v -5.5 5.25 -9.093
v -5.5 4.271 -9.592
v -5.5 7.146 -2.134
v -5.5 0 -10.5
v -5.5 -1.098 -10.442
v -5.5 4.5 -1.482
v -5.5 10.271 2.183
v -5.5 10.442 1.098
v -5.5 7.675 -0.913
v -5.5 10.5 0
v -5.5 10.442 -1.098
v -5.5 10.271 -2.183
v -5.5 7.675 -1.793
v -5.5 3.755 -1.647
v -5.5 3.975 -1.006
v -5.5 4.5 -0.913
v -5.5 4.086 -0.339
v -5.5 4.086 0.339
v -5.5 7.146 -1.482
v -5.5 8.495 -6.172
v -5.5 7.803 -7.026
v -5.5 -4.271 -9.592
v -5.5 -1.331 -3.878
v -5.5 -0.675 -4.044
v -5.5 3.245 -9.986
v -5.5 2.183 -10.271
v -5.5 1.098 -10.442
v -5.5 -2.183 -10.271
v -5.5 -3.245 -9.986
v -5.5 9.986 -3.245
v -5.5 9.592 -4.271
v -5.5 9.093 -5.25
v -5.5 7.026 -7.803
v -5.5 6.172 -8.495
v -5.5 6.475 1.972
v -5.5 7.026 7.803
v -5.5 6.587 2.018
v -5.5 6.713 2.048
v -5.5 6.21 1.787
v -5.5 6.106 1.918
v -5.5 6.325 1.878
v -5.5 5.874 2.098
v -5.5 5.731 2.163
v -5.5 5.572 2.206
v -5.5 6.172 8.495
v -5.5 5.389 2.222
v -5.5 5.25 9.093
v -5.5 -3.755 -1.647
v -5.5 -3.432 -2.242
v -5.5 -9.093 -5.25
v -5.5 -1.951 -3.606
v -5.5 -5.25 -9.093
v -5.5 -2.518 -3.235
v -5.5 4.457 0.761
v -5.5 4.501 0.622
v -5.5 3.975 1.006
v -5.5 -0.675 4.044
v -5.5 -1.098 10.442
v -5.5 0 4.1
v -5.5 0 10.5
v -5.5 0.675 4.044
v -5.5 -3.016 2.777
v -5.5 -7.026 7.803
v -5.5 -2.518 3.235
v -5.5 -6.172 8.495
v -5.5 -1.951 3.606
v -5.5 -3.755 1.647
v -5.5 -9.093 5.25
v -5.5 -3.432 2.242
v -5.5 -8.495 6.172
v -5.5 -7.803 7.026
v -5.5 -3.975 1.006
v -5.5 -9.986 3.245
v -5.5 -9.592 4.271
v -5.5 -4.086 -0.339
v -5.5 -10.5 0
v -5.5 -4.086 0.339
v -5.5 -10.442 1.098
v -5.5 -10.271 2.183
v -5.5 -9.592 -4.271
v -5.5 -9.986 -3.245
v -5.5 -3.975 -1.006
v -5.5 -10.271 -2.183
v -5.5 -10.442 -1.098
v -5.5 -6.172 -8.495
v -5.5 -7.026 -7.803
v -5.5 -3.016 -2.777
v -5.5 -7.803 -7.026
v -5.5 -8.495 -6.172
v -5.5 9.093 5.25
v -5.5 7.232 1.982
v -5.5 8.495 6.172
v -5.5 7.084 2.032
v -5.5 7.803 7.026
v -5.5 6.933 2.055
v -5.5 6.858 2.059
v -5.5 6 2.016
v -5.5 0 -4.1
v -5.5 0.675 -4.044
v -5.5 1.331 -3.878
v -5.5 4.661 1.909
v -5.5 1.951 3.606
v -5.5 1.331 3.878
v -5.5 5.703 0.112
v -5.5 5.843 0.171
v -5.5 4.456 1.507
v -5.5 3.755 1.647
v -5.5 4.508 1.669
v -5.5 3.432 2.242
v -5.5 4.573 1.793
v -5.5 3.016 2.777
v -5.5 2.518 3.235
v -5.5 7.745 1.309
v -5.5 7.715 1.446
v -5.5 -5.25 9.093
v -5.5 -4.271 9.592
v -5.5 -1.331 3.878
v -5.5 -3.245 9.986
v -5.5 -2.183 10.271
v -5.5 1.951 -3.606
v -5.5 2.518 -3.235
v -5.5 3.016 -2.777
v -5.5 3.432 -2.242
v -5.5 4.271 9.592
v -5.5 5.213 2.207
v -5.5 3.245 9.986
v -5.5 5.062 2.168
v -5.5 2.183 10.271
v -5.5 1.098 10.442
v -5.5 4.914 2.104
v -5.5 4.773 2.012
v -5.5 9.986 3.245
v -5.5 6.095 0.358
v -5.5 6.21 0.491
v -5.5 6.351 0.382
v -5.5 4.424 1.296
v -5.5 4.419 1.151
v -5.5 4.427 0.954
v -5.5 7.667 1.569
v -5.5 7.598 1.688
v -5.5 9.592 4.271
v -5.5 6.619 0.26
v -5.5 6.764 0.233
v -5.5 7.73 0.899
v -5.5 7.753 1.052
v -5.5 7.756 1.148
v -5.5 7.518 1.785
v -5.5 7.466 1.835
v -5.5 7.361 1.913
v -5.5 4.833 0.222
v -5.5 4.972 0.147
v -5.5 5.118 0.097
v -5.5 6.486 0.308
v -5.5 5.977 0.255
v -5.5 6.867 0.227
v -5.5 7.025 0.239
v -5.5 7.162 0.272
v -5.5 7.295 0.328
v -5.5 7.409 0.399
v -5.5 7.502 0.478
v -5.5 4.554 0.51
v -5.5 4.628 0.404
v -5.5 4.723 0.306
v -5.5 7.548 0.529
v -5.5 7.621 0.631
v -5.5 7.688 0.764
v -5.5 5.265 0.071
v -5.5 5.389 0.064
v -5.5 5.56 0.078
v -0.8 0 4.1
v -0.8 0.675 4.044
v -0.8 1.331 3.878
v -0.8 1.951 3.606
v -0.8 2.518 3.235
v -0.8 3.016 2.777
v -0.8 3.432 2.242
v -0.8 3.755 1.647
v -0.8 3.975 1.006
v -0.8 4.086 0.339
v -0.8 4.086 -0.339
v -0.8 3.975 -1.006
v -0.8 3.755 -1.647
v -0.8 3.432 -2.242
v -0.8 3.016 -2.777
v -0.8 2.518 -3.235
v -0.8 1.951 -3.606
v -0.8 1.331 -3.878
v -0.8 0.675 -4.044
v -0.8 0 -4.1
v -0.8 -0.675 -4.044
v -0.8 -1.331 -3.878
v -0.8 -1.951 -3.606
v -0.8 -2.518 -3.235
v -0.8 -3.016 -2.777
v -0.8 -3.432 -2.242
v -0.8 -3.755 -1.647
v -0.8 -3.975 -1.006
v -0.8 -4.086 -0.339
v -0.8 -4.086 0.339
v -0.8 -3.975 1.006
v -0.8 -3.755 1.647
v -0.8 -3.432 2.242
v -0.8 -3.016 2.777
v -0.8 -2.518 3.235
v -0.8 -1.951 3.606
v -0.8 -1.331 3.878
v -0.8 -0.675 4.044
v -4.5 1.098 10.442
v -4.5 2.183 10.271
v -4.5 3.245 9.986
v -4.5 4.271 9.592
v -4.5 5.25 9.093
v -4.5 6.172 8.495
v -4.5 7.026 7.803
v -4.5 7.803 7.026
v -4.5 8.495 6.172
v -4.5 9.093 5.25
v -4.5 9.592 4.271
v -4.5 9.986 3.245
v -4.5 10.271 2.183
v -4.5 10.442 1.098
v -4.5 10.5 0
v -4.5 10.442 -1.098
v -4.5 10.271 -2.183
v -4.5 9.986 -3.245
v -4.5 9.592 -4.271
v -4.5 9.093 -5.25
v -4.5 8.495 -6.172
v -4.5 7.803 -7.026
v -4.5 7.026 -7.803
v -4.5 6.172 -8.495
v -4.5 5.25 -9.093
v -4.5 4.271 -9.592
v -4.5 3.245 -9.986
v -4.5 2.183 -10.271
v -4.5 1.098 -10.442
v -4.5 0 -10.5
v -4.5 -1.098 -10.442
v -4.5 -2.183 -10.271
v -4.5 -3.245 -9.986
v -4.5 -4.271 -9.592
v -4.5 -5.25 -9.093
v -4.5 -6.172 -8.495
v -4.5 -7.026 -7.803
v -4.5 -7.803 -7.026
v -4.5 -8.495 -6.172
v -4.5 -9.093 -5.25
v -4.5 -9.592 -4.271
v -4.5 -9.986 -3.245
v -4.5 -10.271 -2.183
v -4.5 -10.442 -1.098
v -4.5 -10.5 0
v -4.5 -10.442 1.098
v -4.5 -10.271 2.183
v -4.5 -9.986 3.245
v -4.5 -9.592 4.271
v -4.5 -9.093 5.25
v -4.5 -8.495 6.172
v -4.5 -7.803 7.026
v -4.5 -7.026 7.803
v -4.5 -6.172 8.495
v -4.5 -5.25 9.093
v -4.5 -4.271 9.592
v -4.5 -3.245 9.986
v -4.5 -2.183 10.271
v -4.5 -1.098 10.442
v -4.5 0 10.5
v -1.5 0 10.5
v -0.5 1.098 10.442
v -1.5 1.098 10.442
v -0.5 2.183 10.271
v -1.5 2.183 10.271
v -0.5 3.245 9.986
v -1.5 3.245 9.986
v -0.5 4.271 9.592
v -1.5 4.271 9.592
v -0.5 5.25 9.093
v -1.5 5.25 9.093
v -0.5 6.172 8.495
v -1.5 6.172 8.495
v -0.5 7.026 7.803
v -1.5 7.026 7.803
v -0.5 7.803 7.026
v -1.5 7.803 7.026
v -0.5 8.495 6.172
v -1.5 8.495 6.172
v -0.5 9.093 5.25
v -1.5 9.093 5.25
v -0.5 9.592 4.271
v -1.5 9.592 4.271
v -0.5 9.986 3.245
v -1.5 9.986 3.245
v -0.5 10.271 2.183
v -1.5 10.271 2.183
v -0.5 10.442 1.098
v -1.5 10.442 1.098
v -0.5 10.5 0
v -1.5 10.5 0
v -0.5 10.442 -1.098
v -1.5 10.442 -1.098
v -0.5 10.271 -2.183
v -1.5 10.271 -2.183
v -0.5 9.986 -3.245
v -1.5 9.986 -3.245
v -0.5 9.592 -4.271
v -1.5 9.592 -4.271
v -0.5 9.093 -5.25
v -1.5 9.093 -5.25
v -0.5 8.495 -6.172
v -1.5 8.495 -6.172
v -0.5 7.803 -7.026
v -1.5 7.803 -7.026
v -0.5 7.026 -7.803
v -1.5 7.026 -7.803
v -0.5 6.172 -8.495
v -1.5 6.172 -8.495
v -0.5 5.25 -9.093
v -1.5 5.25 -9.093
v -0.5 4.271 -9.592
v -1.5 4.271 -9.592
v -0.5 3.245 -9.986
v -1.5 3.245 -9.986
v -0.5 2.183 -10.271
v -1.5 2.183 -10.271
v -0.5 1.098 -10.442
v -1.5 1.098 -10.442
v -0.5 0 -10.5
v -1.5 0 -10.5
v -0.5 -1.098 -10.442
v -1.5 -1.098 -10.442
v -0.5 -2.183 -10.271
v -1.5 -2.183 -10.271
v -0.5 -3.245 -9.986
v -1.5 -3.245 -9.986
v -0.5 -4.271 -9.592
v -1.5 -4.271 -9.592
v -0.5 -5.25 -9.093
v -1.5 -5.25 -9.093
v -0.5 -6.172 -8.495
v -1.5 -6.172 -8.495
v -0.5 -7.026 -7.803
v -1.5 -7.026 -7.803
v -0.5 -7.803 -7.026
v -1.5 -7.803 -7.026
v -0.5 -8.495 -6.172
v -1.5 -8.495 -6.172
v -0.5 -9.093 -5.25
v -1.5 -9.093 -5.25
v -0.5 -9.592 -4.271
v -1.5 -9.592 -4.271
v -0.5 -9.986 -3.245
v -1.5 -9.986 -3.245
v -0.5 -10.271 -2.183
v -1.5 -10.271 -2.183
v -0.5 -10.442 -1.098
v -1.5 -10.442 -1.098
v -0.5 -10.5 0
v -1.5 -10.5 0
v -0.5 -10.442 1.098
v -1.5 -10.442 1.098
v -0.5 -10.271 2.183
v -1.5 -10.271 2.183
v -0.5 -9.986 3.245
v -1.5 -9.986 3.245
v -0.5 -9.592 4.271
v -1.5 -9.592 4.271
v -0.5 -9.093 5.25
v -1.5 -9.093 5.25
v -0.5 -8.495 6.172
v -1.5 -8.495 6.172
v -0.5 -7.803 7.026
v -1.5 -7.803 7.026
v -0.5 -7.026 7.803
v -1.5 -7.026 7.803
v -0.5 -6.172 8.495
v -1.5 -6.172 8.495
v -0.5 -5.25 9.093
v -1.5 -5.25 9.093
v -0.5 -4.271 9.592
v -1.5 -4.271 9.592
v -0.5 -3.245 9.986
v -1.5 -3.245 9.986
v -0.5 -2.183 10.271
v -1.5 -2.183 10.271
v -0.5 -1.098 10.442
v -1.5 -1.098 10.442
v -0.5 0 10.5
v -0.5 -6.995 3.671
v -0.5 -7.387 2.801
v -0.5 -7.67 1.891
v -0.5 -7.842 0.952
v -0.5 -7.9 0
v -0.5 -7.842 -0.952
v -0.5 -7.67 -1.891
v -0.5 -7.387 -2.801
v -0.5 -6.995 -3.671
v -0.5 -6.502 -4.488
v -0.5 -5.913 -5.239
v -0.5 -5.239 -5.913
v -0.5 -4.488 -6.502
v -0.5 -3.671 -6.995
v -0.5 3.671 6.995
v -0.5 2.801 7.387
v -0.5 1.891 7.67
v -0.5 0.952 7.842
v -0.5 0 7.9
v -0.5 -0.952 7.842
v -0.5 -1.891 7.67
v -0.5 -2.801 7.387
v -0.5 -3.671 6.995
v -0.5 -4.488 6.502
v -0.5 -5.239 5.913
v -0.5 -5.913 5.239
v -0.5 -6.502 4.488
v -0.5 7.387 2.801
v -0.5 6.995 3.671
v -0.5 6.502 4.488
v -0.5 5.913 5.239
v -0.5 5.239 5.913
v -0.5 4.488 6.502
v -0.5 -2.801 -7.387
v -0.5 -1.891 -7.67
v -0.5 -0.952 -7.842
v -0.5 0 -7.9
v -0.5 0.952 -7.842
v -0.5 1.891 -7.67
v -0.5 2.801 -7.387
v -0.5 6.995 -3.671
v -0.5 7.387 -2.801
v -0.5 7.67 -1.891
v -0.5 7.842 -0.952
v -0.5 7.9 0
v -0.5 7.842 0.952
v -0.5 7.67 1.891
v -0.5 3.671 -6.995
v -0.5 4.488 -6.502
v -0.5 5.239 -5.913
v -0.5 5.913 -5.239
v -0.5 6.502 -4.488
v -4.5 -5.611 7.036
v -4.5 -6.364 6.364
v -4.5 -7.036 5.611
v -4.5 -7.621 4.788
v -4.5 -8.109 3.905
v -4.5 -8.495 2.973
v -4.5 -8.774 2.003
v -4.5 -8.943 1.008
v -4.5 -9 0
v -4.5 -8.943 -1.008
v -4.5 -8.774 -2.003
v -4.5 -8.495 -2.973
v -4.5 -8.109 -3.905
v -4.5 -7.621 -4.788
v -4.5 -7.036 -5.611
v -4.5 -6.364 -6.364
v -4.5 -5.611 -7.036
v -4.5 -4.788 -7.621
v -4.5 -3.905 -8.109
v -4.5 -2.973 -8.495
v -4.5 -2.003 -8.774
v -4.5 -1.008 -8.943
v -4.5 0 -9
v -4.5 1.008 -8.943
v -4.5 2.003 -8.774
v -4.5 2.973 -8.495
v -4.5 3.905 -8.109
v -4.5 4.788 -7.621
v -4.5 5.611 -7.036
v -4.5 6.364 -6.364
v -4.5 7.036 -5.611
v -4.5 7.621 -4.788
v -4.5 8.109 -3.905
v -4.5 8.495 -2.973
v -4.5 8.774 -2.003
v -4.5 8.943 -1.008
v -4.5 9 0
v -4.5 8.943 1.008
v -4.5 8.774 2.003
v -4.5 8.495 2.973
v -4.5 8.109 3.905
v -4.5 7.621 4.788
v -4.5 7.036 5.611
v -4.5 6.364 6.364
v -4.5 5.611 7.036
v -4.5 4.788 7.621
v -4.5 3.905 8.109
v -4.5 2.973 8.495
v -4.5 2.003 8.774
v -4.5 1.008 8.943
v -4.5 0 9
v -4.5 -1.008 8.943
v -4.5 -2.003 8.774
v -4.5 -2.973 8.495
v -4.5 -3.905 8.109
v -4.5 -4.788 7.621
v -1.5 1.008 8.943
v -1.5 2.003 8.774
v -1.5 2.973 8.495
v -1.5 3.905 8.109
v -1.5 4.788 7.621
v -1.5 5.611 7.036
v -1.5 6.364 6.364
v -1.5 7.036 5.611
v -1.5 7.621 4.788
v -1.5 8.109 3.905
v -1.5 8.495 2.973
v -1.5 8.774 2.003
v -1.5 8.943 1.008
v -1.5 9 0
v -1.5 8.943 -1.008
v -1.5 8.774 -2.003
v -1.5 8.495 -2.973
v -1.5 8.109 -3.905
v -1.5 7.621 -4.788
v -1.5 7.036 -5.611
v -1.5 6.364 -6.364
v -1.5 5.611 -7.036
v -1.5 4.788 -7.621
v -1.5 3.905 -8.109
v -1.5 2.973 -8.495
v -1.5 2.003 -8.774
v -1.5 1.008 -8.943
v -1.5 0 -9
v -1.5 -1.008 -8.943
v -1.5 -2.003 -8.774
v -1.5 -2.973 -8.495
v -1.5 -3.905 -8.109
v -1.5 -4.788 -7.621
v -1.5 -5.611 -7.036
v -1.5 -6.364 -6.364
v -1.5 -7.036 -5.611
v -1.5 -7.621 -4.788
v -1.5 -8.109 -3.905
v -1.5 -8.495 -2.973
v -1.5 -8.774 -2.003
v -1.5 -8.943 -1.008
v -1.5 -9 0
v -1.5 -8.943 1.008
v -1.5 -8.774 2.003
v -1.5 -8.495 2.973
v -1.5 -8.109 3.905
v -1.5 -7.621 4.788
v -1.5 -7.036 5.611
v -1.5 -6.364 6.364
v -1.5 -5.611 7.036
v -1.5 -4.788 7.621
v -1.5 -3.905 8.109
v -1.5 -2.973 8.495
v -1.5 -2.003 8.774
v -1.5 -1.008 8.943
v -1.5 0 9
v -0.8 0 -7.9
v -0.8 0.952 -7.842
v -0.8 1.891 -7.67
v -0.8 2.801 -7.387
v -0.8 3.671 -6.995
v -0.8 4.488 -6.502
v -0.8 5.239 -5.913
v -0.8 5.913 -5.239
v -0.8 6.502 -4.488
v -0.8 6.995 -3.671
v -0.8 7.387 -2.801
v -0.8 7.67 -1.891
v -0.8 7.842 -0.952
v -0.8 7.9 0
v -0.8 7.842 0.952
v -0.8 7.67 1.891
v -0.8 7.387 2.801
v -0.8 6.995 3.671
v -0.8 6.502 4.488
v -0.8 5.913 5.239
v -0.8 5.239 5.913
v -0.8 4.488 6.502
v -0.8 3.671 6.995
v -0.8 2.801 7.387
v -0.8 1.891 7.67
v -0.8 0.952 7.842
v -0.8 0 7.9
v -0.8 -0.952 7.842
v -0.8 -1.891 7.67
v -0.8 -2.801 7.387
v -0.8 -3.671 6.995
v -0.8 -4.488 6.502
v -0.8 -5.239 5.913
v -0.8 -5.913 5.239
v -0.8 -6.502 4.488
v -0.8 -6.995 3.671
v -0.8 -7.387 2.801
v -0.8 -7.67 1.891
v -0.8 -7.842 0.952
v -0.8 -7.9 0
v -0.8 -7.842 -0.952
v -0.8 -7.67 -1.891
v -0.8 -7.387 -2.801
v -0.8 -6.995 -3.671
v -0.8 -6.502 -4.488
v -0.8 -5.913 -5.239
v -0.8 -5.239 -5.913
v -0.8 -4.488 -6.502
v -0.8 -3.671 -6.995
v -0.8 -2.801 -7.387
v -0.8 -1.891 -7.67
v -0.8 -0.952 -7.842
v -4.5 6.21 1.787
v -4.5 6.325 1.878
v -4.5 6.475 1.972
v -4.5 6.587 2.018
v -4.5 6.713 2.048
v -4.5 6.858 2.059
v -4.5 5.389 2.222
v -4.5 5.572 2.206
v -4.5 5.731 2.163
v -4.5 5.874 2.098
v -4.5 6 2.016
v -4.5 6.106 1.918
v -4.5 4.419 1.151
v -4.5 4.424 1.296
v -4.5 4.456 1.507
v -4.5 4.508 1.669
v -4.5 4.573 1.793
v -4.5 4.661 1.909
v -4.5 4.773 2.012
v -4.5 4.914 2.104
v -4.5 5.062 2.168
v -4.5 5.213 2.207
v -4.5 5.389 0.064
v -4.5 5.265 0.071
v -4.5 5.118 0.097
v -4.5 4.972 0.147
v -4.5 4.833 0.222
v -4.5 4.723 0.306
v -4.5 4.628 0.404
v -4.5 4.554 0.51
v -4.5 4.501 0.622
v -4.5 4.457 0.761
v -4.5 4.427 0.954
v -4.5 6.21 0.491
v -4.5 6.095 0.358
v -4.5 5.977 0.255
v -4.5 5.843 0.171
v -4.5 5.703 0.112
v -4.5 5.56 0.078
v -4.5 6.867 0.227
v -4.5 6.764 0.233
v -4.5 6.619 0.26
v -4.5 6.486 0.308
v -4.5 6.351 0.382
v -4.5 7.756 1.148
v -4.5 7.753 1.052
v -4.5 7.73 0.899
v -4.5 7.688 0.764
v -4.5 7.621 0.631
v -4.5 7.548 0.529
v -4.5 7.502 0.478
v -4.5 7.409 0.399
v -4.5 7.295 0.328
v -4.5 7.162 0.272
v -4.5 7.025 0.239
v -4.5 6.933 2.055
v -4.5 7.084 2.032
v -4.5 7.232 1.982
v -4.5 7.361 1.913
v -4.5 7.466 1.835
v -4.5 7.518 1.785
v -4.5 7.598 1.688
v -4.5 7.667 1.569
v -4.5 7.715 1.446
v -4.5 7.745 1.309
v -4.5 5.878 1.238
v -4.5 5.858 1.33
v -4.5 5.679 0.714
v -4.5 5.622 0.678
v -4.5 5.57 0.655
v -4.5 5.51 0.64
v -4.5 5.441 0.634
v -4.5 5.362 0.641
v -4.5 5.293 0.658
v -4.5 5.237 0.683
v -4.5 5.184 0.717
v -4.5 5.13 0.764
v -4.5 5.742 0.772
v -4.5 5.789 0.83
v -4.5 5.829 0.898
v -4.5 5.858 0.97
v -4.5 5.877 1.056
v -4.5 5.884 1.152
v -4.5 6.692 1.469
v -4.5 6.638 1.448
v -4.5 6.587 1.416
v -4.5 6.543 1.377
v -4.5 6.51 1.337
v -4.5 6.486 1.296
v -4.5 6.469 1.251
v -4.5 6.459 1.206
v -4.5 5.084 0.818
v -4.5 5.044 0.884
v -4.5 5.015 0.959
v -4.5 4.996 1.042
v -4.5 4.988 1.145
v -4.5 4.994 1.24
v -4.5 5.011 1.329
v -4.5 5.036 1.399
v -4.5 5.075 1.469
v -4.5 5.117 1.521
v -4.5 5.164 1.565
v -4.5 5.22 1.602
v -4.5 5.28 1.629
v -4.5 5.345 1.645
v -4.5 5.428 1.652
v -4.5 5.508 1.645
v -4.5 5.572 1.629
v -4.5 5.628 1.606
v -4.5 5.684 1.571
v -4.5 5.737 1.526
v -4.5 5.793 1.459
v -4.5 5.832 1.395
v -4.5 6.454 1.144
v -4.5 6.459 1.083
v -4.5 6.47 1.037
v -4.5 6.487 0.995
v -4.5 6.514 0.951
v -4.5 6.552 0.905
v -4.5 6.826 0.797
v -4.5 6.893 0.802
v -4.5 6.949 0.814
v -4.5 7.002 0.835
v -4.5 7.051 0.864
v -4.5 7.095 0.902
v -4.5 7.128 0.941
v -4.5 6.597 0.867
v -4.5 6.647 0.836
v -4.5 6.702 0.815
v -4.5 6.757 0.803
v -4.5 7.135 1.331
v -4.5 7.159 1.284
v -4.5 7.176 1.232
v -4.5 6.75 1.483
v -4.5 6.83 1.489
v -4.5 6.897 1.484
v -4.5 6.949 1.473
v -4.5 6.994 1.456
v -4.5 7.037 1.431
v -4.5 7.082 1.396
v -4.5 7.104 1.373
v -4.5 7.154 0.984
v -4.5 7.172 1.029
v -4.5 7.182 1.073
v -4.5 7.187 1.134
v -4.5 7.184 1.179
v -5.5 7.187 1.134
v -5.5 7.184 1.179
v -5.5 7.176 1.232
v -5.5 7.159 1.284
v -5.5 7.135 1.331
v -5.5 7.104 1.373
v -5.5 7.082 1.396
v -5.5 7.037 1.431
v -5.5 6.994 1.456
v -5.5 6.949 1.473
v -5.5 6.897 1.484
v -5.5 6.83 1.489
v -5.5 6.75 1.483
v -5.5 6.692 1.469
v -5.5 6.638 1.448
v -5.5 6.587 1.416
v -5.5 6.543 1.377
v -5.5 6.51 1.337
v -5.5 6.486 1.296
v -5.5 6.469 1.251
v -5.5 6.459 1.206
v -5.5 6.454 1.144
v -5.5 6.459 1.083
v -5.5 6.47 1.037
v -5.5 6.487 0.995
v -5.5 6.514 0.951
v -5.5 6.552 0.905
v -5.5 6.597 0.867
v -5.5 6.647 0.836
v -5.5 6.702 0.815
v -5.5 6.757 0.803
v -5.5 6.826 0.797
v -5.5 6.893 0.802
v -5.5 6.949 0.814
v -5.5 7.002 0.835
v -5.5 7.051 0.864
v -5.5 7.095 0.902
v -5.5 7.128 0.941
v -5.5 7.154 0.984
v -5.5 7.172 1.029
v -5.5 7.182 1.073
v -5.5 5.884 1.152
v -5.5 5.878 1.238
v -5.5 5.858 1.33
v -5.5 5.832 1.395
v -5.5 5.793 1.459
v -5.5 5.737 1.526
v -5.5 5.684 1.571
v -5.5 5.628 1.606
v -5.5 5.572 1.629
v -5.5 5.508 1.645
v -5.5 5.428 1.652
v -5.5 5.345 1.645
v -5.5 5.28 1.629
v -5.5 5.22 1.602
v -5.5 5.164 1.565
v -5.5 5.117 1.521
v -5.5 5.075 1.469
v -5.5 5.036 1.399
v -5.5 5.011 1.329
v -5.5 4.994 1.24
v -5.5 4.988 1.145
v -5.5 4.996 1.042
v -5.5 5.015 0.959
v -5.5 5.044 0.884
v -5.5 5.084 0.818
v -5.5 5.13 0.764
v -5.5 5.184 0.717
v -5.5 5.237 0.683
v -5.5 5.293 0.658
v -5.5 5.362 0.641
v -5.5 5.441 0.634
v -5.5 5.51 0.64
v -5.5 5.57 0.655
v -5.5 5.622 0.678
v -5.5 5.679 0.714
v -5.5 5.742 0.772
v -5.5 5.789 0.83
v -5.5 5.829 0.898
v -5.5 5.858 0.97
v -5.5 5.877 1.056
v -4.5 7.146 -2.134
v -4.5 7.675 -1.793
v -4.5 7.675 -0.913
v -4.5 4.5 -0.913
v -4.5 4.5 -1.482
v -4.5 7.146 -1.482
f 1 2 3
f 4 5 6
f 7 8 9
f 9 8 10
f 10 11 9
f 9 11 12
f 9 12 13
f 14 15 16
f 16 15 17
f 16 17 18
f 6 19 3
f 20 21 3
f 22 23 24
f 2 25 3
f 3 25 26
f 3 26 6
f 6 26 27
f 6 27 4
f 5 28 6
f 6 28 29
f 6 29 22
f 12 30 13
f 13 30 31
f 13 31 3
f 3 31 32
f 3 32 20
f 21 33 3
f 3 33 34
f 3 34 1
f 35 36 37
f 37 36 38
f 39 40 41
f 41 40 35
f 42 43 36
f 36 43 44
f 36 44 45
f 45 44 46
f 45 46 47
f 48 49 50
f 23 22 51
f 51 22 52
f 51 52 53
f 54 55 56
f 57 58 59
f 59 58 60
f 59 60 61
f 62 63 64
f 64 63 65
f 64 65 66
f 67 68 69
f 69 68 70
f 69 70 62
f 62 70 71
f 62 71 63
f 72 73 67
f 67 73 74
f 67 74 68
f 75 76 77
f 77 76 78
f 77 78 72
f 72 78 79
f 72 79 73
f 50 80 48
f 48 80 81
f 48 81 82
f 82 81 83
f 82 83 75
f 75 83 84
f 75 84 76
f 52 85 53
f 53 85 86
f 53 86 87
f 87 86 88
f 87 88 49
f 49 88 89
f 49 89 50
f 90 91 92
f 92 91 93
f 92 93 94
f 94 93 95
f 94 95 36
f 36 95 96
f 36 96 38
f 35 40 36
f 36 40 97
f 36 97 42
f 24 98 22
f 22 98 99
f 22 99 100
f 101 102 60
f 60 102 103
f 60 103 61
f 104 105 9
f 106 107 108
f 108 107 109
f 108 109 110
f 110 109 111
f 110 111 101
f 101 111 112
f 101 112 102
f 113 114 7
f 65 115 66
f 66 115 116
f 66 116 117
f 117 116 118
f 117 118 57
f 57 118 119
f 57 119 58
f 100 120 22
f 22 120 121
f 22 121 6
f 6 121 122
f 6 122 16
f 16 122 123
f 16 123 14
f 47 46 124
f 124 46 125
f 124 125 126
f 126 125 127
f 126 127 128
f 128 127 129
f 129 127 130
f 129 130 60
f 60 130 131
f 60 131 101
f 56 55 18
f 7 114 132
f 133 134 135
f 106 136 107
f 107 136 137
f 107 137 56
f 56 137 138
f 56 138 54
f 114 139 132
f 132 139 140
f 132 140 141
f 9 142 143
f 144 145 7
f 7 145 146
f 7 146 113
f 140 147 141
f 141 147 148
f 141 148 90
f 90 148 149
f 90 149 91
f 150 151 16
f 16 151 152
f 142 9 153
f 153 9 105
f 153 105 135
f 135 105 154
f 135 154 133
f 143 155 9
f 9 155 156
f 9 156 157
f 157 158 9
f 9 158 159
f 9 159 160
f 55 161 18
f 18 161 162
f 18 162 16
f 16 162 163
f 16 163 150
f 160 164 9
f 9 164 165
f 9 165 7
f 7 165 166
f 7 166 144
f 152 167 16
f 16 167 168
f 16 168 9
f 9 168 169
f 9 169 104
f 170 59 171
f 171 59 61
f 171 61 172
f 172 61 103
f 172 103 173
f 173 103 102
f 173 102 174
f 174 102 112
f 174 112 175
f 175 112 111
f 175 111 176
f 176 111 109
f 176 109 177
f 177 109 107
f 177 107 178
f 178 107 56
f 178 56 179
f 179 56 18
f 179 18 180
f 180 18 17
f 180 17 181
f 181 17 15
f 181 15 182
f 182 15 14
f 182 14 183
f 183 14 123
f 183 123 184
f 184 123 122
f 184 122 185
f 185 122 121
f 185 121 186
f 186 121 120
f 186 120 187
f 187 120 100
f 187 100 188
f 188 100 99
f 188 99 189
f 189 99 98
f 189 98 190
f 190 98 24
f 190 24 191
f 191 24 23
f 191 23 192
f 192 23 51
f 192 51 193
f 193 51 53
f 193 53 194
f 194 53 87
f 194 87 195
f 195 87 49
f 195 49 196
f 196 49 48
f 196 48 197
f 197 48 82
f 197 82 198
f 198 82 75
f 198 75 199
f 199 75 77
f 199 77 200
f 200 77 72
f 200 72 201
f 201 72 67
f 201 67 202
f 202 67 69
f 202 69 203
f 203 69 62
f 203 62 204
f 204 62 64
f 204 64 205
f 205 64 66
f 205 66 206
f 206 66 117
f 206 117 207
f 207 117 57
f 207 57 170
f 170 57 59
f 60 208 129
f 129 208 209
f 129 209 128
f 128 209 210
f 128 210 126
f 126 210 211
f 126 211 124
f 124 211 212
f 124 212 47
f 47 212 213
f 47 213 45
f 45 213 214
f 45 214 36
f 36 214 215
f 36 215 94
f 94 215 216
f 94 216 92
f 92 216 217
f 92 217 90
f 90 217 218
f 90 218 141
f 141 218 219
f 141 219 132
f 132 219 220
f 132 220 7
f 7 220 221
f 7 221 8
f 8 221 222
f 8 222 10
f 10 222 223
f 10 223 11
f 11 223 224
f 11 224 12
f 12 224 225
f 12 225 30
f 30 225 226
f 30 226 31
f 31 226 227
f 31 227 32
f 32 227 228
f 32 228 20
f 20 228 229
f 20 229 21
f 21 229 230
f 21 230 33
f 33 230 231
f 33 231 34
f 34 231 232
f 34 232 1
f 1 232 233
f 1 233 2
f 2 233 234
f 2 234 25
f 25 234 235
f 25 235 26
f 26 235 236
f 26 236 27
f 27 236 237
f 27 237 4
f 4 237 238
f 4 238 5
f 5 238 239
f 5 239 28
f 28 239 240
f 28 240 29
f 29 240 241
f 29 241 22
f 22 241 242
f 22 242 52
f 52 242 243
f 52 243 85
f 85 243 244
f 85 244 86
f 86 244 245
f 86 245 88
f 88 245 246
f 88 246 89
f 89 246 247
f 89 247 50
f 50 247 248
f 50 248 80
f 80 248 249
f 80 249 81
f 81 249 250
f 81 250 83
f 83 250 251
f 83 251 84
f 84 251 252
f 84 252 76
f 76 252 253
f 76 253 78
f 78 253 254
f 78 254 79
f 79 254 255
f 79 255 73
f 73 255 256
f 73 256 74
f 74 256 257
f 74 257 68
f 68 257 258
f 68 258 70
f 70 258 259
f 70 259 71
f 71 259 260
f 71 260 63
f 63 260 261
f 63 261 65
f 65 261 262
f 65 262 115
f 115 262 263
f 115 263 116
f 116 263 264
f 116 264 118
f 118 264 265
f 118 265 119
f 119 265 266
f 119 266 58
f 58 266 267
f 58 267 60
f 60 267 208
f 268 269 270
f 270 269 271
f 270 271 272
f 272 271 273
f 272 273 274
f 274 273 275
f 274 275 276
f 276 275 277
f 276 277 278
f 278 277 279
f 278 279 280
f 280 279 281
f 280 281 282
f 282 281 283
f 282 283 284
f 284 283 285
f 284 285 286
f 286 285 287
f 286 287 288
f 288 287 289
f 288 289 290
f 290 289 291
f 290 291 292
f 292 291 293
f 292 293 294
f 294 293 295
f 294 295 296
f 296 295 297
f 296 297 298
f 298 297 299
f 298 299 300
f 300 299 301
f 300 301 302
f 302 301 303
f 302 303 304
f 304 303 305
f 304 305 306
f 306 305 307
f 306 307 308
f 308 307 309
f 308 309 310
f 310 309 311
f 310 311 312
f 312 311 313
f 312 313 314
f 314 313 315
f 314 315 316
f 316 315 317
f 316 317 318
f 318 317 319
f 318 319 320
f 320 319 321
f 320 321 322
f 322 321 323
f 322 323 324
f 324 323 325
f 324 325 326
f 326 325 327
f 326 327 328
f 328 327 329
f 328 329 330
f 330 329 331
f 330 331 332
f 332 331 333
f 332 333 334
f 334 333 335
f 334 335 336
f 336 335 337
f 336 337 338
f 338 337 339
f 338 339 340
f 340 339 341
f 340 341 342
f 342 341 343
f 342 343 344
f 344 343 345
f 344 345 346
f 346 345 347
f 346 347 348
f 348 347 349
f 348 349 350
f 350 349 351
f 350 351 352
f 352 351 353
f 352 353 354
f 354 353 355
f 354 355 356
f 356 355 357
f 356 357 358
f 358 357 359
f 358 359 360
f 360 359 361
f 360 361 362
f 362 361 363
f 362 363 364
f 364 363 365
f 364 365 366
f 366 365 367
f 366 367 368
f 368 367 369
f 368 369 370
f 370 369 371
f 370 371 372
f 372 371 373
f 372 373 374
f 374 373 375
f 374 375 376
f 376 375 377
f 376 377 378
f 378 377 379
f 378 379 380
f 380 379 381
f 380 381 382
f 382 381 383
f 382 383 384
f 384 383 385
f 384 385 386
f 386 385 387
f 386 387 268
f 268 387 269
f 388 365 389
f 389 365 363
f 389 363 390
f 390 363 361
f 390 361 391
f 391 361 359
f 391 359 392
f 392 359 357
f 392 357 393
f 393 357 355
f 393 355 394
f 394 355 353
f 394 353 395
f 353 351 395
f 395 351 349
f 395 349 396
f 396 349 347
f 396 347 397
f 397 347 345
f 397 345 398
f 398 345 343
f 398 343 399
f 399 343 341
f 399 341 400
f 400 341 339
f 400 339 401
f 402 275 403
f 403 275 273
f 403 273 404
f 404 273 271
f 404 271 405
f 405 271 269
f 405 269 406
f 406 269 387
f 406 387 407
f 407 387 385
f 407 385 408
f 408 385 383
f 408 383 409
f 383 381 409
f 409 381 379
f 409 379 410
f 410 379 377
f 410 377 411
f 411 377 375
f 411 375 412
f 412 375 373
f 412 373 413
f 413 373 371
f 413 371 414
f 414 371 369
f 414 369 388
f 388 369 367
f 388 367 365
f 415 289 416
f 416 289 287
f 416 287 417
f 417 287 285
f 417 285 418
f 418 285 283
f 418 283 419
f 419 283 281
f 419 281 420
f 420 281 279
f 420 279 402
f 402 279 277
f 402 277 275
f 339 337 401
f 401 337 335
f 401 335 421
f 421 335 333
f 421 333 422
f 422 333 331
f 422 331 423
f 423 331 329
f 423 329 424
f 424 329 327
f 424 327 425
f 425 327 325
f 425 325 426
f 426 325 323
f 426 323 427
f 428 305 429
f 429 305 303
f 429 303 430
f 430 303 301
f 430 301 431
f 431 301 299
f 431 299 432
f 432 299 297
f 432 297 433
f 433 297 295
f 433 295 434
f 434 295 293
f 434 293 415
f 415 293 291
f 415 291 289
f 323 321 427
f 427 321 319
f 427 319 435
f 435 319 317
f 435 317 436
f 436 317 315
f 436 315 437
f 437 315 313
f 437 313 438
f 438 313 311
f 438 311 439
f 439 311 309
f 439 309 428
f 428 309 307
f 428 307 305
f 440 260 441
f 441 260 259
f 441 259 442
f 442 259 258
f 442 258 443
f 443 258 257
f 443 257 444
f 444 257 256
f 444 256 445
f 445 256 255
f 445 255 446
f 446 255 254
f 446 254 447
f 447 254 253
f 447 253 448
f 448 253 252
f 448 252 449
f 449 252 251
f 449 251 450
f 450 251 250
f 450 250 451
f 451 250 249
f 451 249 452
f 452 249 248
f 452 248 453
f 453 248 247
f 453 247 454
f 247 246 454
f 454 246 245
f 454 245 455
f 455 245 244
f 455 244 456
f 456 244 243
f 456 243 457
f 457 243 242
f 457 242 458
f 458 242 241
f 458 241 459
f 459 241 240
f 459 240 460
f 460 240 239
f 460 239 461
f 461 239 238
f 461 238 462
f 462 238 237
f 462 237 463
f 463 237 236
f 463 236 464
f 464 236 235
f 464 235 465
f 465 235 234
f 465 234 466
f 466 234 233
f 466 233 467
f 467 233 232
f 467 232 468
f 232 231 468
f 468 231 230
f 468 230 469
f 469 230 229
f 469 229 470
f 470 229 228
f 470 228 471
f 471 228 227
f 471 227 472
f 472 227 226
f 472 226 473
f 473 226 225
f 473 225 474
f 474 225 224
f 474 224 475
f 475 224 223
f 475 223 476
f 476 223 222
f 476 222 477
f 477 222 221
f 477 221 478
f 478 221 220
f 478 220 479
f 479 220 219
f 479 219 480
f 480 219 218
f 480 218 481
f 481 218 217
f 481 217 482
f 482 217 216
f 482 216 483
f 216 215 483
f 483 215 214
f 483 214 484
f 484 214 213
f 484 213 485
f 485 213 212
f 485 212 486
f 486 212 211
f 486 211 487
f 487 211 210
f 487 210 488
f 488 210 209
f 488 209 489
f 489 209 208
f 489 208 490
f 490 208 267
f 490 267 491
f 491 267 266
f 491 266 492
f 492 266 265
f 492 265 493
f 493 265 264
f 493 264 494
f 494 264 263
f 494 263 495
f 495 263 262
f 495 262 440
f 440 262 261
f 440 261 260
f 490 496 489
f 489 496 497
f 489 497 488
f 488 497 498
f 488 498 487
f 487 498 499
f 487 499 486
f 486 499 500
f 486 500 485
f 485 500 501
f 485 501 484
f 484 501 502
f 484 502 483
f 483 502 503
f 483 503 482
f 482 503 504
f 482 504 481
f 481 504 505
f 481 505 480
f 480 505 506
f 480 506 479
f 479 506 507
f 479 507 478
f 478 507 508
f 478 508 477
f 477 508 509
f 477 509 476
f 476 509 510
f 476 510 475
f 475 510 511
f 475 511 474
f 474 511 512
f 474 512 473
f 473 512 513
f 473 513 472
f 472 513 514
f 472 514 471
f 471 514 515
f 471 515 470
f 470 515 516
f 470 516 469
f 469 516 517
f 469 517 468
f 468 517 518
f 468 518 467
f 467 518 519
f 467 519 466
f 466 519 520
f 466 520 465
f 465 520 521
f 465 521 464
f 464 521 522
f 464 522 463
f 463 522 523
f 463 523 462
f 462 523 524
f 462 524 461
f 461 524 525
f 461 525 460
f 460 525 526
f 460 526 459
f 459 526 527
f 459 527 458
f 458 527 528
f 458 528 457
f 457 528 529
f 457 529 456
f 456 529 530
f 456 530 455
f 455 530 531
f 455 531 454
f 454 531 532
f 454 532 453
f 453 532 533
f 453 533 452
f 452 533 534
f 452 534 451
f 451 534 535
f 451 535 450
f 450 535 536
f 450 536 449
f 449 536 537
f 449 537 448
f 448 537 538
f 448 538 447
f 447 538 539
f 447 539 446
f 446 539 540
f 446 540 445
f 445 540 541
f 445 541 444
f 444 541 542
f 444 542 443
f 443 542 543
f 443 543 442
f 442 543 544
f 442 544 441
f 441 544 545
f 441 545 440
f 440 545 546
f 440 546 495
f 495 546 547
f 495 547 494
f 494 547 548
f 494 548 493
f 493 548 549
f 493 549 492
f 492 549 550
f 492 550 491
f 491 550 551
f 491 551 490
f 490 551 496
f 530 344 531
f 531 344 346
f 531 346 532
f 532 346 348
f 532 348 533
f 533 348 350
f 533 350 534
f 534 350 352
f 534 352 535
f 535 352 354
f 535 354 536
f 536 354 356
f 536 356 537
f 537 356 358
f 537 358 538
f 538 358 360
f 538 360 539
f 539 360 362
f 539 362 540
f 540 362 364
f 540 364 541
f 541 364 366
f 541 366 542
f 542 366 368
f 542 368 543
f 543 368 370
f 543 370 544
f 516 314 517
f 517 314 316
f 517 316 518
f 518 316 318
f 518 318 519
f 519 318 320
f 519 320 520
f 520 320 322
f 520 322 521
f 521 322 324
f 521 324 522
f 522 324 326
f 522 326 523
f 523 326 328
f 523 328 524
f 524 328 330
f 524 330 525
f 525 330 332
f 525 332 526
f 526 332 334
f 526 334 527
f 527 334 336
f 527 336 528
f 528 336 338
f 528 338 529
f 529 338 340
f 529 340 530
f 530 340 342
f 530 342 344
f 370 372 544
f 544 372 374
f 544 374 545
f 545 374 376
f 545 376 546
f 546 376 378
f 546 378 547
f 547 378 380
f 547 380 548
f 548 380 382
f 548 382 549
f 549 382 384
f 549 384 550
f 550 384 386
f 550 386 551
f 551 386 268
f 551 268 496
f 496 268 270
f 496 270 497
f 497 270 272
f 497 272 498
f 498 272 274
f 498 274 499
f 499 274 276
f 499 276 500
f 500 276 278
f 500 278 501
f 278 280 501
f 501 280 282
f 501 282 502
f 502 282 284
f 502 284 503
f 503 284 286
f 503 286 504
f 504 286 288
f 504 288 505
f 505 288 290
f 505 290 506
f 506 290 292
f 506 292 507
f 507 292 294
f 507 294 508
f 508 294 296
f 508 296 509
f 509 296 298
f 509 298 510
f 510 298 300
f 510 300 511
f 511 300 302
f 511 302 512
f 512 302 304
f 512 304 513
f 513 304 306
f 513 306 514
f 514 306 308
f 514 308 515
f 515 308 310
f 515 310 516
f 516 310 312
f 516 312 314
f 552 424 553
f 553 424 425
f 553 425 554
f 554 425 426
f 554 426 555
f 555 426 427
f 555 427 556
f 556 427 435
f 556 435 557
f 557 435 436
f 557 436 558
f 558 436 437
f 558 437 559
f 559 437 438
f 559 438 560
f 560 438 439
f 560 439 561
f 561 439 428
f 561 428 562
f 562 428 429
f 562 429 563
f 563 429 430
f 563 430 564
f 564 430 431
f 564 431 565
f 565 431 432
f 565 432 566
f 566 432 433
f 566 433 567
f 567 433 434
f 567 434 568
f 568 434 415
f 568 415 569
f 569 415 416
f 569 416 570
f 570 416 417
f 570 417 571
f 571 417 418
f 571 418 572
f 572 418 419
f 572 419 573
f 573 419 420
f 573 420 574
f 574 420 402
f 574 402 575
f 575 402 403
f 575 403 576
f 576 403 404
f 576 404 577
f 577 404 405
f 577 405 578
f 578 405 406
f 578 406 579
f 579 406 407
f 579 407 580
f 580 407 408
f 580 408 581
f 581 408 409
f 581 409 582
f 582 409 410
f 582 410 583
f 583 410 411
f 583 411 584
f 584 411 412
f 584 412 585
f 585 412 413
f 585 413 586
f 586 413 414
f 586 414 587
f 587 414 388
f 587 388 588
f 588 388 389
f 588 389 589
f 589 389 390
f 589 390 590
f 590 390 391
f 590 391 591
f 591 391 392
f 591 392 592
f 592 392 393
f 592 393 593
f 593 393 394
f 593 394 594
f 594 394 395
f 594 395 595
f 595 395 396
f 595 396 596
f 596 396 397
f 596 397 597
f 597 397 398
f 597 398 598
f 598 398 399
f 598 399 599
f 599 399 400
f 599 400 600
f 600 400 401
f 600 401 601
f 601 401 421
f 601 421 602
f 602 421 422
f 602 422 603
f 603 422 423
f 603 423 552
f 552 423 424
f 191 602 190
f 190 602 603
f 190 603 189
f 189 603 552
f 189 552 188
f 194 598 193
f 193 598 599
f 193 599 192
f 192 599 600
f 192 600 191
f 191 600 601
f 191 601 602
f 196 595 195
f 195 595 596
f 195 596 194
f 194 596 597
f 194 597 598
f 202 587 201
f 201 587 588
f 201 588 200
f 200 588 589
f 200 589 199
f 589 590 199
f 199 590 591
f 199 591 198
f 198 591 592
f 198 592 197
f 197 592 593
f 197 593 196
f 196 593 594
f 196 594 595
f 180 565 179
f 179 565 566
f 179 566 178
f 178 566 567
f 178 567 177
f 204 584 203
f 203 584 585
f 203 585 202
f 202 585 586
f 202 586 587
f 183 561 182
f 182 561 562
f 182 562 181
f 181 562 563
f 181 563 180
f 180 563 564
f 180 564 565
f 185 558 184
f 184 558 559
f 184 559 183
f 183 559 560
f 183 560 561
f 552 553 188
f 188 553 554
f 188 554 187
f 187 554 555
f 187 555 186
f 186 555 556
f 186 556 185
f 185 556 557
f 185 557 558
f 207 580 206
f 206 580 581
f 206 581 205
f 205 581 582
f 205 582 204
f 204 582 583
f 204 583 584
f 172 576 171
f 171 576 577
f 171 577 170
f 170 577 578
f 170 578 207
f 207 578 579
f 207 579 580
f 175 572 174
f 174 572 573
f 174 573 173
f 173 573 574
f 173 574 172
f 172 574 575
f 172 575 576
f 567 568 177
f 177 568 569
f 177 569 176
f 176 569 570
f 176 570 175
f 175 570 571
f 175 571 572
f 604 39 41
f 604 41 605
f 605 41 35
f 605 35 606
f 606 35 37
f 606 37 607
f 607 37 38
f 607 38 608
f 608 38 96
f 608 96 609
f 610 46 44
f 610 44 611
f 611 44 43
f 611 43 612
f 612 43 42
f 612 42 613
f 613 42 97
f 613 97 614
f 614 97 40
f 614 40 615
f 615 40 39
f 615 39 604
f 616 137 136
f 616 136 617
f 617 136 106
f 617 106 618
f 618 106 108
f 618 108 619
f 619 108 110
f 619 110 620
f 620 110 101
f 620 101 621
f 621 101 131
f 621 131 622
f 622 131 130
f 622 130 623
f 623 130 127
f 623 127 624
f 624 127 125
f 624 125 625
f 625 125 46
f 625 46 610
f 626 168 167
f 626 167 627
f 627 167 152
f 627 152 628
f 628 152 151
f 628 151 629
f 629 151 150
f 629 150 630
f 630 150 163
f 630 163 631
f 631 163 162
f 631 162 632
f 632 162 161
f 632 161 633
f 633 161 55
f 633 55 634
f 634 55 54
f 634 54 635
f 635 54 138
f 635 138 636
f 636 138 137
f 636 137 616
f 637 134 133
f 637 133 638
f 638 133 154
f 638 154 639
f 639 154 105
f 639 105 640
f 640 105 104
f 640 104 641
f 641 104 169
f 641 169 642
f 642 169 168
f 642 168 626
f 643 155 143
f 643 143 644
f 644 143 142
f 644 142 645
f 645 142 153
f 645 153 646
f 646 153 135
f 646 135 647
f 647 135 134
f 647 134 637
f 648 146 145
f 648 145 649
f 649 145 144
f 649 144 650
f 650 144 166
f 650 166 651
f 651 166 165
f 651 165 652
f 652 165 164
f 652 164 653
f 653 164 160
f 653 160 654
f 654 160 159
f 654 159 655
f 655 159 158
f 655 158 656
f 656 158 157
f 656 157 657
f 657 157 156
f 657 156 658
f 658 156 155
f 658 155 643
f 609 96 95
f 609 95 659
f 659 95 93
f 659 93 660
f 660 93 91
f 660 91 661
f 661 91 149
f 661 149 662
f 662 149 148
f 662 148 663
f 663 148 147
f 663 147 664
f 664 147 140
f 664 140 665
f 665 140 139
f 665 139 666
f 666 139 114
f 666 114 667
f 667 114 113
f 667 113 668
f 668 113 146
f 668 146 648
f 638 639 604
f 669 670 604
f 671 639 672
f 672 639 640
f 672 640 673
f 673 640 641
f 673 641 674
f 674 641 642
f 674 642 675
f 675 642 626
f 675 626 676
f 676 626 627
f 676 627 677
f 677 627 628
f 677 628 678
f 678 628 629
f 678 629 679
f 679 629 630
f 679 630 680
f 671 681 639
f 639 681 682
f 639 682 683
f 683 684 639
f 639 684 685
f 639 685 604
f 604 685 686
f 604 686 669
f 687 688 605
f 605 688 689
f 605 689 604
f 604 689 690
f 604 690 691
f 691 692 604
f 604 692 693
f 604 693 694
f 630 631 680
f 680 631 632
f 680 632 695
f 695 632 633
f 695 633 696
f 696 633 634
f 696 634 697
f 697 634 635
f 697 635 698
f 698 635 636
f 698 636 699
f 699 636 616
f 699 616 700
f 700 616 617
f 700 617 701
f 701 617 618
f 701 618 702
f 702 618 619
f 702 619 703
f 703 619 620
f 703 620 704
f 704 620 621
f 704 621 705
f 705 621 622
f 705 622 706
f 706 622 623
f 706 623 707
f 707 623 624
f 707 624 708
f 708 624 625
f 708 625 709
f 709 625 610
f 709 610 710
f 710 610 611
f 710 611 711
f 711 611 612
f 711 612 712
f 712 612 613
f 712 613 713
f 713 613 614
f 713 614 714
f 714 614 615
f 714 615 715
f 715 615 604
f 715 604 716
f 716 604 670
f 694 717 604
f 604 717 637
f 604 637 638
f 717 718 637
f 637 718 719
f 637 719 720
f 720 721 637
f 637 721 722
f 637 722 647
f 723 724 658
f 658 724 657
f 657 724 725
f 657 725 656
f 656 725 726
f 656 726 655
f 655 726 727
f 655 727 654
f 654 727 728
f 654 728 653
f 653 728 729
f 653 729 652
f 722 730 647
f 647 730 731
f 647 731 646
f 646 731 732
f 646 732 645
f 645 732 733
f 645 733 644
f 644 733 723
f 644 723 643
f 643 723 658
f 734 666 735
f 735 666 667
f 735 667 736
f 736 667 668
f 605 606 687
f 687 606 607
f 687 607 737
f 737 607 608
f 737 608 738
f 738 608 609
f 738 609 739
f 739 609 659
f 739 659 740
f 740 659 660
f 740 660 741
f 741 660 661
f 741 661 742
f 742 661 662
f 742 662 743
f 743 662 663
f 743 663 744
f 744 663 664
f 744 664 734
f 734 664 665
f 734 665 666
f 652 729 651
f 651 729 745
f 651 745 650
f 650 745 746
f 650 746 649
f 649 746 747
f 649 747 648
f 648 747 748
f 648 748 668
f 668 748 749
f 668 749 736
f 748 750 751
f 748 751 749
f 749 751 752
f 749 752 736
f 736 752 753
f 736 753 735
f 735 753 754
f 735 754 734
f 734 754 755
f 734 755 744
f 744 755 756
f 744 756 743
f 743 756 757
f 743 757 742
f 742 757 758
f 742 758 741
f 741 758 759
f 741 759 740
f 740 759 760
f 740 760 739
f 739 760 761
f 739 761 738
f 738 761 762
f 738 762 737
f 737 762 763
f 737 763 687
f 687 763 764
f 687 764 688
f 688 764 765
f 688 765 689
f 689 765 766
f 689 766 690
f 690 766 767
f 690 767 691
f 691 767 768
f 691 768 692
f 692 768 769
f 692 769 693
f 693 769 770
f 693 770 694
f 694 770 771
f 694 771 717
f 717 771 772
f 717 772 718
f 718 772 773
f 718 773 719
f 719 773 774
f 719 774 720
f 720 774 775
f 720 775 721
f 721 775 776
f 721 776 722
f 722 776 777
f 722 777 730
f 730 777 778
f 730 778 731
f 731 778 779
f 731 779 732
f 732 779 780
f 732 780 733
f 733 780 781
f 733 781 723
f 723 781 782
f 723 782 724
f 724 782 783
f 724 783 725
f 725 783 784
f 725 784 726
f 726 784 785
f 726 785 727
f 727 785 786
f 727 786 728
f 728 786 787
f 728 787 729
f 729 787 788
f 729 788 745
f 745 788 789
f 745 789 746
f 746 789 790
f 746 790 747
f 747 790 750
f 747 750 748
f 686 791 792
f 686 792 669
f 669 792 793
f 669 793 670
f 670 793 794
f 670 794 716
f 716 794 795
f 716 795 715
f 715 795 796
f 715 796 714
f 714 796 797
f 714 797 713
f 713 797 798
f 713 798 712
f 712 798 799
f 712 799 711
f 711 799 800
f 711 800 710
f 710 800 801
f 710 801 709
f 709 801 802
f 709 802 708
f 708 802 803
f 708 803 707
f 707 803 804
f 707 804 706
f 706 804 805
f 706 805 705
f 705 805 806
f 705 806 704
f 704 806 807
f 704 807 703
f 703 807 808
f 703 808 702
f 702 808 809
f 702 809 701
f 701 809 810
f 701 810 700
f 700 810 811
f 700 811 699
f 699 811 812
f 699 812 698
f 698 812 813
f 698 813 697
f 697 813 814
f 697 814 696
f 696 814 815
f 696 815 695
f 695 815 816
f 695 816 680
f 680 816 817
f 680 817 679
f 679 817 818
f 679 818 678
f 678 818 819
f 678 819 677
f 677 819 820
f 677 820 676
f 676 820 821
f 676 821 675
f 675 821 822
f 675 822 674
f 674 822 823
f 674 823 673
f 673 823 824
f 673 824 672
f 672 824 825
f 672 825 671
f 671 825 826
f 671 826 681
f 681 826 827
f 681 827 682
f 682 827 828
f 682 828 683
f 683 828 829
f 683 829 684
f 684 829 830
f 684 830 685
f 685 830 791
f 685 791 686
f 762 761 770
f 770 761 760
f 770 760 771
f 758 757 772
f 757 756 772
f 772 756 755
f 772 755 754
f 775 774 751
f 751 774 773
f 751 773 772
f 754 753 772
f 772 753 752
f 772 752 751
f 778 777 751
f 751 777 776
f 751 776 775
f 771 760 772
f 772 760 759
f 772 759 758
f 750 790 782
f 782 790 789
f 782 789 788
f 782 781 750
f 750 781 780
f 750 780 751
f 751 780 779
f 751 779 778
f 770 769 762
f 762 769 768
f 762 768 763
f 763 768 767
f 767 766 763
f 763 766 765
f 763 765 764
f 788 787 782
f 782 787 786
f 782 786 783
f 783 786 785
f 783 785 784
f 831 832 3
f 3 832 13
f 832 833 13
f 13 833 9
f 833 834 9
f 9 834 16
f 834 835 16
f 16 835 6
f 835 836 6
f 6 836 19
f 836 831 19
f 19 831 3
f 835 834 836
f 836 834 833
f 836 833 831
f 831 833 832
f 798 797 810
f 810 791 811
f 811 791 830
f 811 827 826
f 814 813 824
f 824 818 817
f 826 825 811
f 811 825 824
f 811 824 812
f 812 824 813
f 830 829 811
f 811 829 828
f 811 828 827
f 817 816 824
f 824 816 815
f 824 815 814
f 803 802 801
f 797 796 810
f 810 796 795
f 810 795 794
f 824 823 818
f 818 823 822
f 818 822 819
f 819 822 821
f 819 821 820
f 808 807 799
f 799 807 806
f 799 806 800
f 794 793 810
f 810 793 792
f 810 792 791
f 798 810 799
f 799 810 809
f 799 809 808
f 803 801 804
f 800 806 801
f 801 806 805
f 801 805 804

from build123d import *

# Parameters (mm, degrees)
SKETCH1_W          = 5
SKETCH1_H          = 6.4
SKETCH2_W          = 3
SKETCH2_H          = 1.5
SKETCH3_R          = 7.9
CUT_EXTRUDE1_DEPTH = 0.8
CUT_EXTRUDE2_DEPTH = 1


with BuildPart() as part:
    # Sketch1 → Revolve1 (revolve)
    with BuildSketch(Plane.XY, mode=Mode.PRIVATE) as revolve1_sk:
        with Locations((-3, 7.3)):
            Rectangle(SKETCH1_W, SKETCH1_H)
    revolve(revolve1_sk.sketch.rotate(Axis((0, 0, 0), (1, 0, 0)), 90), axis=Axis((0, 0, 0), (1, 0, 0)))

    # Sketch2 → Cut-Revolve1 (revolve, cut)
    with BuildSketch(Plane.XY, mode=Mode.PRIVATE) as cut_revolve1_sk:
        with Locations((-3, 9.75)):
            Rectangle(SKETCH2_W, SKETCH2_H)
    revolve(cut_revolve1_sk.sketch.rotate(Axis((0, 0, 0), (1, 0, 0)), 90), axis=Axis((0, 0, 0), (1, 0, 0)), mode=Mode.SUBTRACT)

    # Sketch3 → Cut-Extrude1 (cut)
    with BuildSketch(Plane(origin=(0, 0, 0), x_dir=(0, 0, -1), z_dir=(1, 0, 0))):
        Circle(SKETCH3_R)
    extrude(amount=-CUT_EXTRUDE1_DEPTH, mode=Mode.SUBTRACT)

    # Sketch5 → Cut-Extrude2 (cut)
    # profile 1 of 2: a face of its own
    with BuildSketch(Plane.ZY.offset(5.5)):
        Polygon((-1.793384415, 7.675), (-0.9125, 7.675), (-0.9125, 4.5), (-1.482371795, 4.5), (-1.482371795, 7.145833333), (-2.133653846, 7.145833333), align=None)
    # profile 2 of 2: a face of its own
    with BuildSketch(Plane.ZY.offset(5.5)):
        with BuildLine():
            add(Edge.make_bspline(
                [(1.786758814, 6.209615385), (1.820052688, 6.185826012), (1.885954908, 6.138737096), (1.972987633, 6.054375541), (2.047953153, 5.960269248), (2.110064245, 5.856995446), (2.159825779, 5.747092633), (2.195447488, 5.631735537), (2.218073988, 5.511941637), (2.220545477, 5.430382608), (2.221794872, 5.389152644)],
                knots=[0, 0, 0, 0, 1.013736912, 2.006600758, 2.994453809, 3.989973287, 4.987781207, 5.978959008, 6.978317308, 8, 8, 8, 8], degree=3))
            add(Edge.make_bspline(
                [(2.221794872, 5.389152644), (2.220287572, 5.34450785), (2.217298037, 5.255960631), (2.190866551, 5.126106148), (2.14843186, 5.00135344), (2.090436575, 4.883079461), (2.017721153, 4.774959714), (1.932964566, 4.679242926), (1.836059971, 4.598428905), (1.745839049, 4.543597114), (1.668182749, 4.507173392), (1.605514797, 4.483862941), (1.539341558, 4.46334135), (1.469190831, 4.446945961), (1.395075371, 4.434146669), (1.31710095, 4.42569404), (1.235216239, 4.419549495), (1.179374328, 4.418915055), (1.150741186, 4.418589744)],
                knots=[0, 0, 0, 0, 1.313679292, 2.605514271, 3.884962679, 5.186178731, 6.472827995, 7.711026938, 8.938935107, 10.174644318, 10.808706728, 11.462743532, 12.142127587, 12.847854939, 13.582806024, 14.355735269, 15.156897313, 16, 16, 16, 16], degree=3))
            add(Edge.make_bspline(
                [(1.150741186, 4.418589744), (1.120206781, 4.41900393), (1.060579108, 4.419812753), (0.973535988, 4.424703329), (0.891428611, 4.433719654), (0.814084743, 4.445588948), (0.741578798, 4.461295464), (0.673908628, 4.481210467), (0.610910835, 4.503885913), (0.533798227, 4.538411225), (0.4456725, 4.592329893), (0.350424526, 4.671292228), (0.266821174, 4.765338836), (0.194135977, 4.871829843), (0.136842765, 4.990110116), (0.094237825, 5.116467223), (0.069006675, 5.250558751), (0.065969127, 5.342404855), (0.064423077, 5.389152644)],
                knots=[0, 0, 0, 0, 0.886964665, 1.7320671, 2.531131818, 3.285397207, 4.004107883, 4.684213108, 5.332925796, 5.947568694, 7.135706876, 8.320776993, 9.52873045, 10.778999824, 12.05415135, 13.333578234, 14.642845846, 16, 16, 16, 16], degree=3))
            add(Edge.make_bspline(
                [(0.064423077, 5.389152644), (0.065835907, 5.4299324), (0.068612291, 5.510069557), (0.088499898, 5.627495836), (0.122601102, 5.738829844), (0.169393262, 5.844846641), (0.229730957, 5.945558024), (0.30397099, 6.040222955), (0.391172072, 6.129695445), (0.457298282, 6.182533521), (0.491190905, 6.209615385)],
                knots=[0, 0, 0, 0, 1.01821053, 2.000906977, 2.963938143, 3.919209931, 4.888045165, 5.887808425, 6.917407893, 8, 8, 8, 8], degree=3))
            add(Edge.make_bspline(
                [(0.491190905, 6.209615385), (0.470179277, 6.233849224), (0.428813708, 6.281558356), (0.375286255, 6.358342401), (0.33019163, 6.437506832), (0.291904146, 6.518409188), (0.263601062, 6.602442406), (0.242197406, 6.68828531), (0.230091519, 6.776812445), (0.228199332, 6.836482365), (0.22724359, 6.866621595)],
                knots=[0, 0, 0, 0, 1.061529281, 2.089831458, 3.092927091, 4.075998741, 5.048384512, 6.024008542, 7.00192825, 8, 8, 8, 8], degree=3))
            add(Edge.make_bspline(
                [(0.22724359, 6.866621595), (0.228510758, 6.907421227), (0.231010833, 6.987917329), (0.25315385, 7.105621637), (0.289916635, 7.217464189), (0.339929274, 7.323117526), (0.403437554, 7.420279049), (0.47889914, 7.507411214), (0.567374874, 7.581322406), (0.665574579, 7.64474147), (0.773990481, 7.695184406), (0.89159394, 7.730480594), (1.016964877, 7.752824943), (1.103366784, 7.755196971), (1.147561098, 7.756410256)],
                knots=[0, 0, 0, 0, 1.022455555, 2.017265428, 2.990720743, 3.968117071, 4.939886797, 5.893155559, 6.847550415, 7.820889576, 8.817530429, 9.83499769, 10.892607882, 12, 12, 12, 12], degree=3))
            add(Edge.make_bspline(
                [(1.147561098, 7.756410256), (1.191118898, 7.755194985), (1.276047488, 7.752825462), (1.399215198, 7.730629167), (1.514277223, 7.694546749), (1.620282085, 7.643038738), (1.717466215, 7.579497441), (1.804438236, 7.503012731), (1.879663021, 7.413710397), (1.94369846, 7.314035335), (1.994724865, 7.206649897), (2.032448506, 7.094033972), (2.054268305, 6.977072732), (2.057399401, 6.897661569), (2.058974359, 6.857717348)],
                knots=[0, 0, 0, 0, 1.094655142, 2.134348324, 3.136019022, 4.118575226, 5.088726318, 6.048298823, 7.020513804, 8.015920439, 9.020015034, 10.003048569, 10.995523219, 12, 12, 12, 12], degree=3))
            add(Edge.make_bspline(
                [(2.058974359, 6.857717348), (2.058215664, 6.829486932), (2.056726782, 6.774086853), (2.045718289, 6.692466901), (2.027181337, 6.614152447), (2.00133663, 6.537250953), (1.965403664, 6.459672577), (1.916778006, 6.379930777), (1.857631279, 6.294712264), (1.811180399, 6.238938489), (1.786758814, 6.209615385)],
                knots=[0, 0, 0, 0, 0.940746401, 1.846144481, 2.739104268, 3.619506754, 4.545839139, 5.581956076, 6.728711598, 8, 8, 8, 8], degree=3))
        make_face()
        with BuildLine():
            add(Edge.make_bspline(
                [(1.13356871, 7.186538462), (1.110105898, 7.185407337), (1.064465545, 7.183207049), (0.999342106, 7.163347019), (0.940794009, 7.130864527), (0.890157731, 7.086162225), (0.848633343, 7.031922679), (0.8181152, 6.969563237), (0.80001758, 6.899853484), (0.798101595, 6.851041394), (0.797115385, 6.825916466)],
                knots=[0, 0, 0, 0, 1.018099191, 1.980427864, 2.929421084, 3.909248076, 4.895556904, 5.880788387, 6.909183412, 8, 8, 8, 8], degree=3))
            add(Edge.make_bspline(
                [(0.797115385, 6.825916466), (0.798333656, 6.800576967), (0.800712448, 6.751099152), (0.819418974, 6.680050049), (0.851304765, 6.615659356), (0.89508374, 6.559271984), (0.948282285, 6.513216409), (1.007848346, 6.478041724), (1.074442524, 6.457961409), (1.120719086, 6.455238447), (1.14438101, 6.453846154)],
                knots=[0, 0, 0, 0, 1.07118507, 2.091592095, 3.082435519, 4.092579768, 5.090825648, 6.043203473, 6.999459622, 8, 8, 8, 8], degree=3))
            add(Edge.make_bspline(
                [(1.14438101, 6.453846154), (1.168490274, 6.454924942), (1.215459644, 6.457026624), (1.282220098, 6.477627967), (1.342362736, 6.510575617), (1.393866019, 6.557156306), (1.436526559, 6.613564099), (1.467595246, 6.679080076), (1.485477259, 6.752473276), (1.487864571, 6.803768386), (1.489102564, 6.83036859)],
                knots=[0, 0, 0, 0, 1.008803858, 1.965339183, 2.900766489, 3.864508618, 4.855158575, 5.849593072, 6.884859315, 8, 8, 8, 8], degree=3))
            add(Edge.make_bspline(
                [(1.489102564, 6.83036859), (1.487833255, 6.855476908), (1.485378456, 6.904035512), (1.467776605, 6.973749787), (1.435449925, 7.035135947), (1.392976839, 7.089038677), (1.339726971, 7.132507876), (1.277907775, 7.164475387), (1.207974461, 7.183016853), (1.158907715, 7.185339172), (1.13356871, 7.186538462)],
                knots=[0, 0, 0, 0, 1.065910571, 2.061433587, 3.023559535, 3.990682701, 4.956464619, 5.918590567, 6.925120432, 8, 8, 8, 8], degree=3))
        make_face(mode=Mode.SUBTRACT)
        with BuildLine():
            add(Edge.make_bspline(
                [(1.152013221, 5.883974359), (1.13418326, 5.883678266), (1.09904063, 5.88309467), (1.047378076, 5.876364936), (0.997802545, 5.866335968), (0.950375546, 5.852501289), (0.905336675, 5.833641141), (0.862304152, 5.810904884), (0.821426594, 5.784062683), (0.783310327, 5.753601858), (0.748862129, 5.720168201), (0.717810211, 5.68529798), (0.692429653, 5.648089706), (0.671293699, 5.609780194), (0.654310841, 5.570065862), (0.643083888, 5.528292696), (0.635855302, 5.485016998), (0.634818075, 5.455539347), (0.634294872, 5.440670072)],
                knots=[0, 0, 0, 0, 1.129580664, 2.226389355, 3.296443603, 4.333934503, 5.352185725, 6.386189251, 7.41493955, 8.447544828, 9.47401038, 10.455044306, 11.4018853, 12.322125673, 13.225630306, 14.132028716, 15.057747923, 16, 16, 16, 16], degree=3))
            add(Edge.make_bspline(
                [(0.634294872, 5.440670072), (0.63454424, 5.425162887), (0.63503883, 5.394406304), (0.642508927, 5.349514587), (0.653264548, 5.306219609), (0.66837116, 5.264926636), (0.688573384, 5.225659711), (0.712695206, 5.188037072), (0.741577744, 5.152322538), (0.774437858, 5.118707595), (0.81122461, 5.088380917), (0.850872666, 5.061662584), (0.892858367, 5.038106335), (0.938442094, 5.021140191), (0.985935698, 5.005611286), (1.036611549, 4.996190273), (1.089916154, 4.98925803), (1.126335289, 4.988731586), (1.145017027, 4.988461538)],
                knots=[0, 0, 0, 0, 0.973817353, 1.931446211, 2.852767904, 3.776304432, 4.688323523, 5.623710549, 6.581246645, 7.570897993, 8.57436511, 9.572506873, 10.574556662, 11.591826551, 12.624694332, 13.712108235, 14.826391851, 16, 16, 16, 16], degree=3))
            add(Edge.make_bspline(
                [(1.145017027, 4.988461538), (1.163901485, 4.988803842), (1.200701313, 4.989470882), (1.25449526, 4.995366257), (1.305374788, 5.004720502), (1.353279122, 5.018099252), (1.398389413, 5.035237963), (1.440100547, 5.057052151), (1.479364857, 5.081773696), (1.514920581, 5.110655854), (1.547385577, 5.142131378), (1.57535873, 5.176625875), (1.599143992, 5.213030128), (1.618329397, 5.251737483), (1.633810296, 5.292565228), (1.644429222, 5.335920457), (1.651018647, 5.381315958), (1.651618364, 5.412238245), (1.651923077, 5.42794972)],
                knots=[0, 0, 0, 0, 1.200705402, 2.339794563, 3.437264955, 4.487414319, 5.499029866, 6.500076882, 7.476298407, 8.444948224, 9.407950986, 10.347155707, 11.263432813, 12.167927724, 13.089546445, 14.03463663, 15.00140776, 16, 16, 16, 16], degree=3))
            add(Edge.make_bspline(
                [(1.651923077, 5.42794972), (1.651341254, 5.443866599), (1.650203992, 5.474978582), (1.643981063, 5.520922743), (1.632307482, 5.564478525), (1.617035028, 5.606656097), (1.596719157, 5.646582665), (1.571497443, 5.684173963), (1.542788942, 5.720361173), (1.509235047, 5.753533371), (1.472549081, 5.783864551), (1.433502717, 5.810886303), (1.392216224, 5.833771234), (1.348576668, 5.852478529), (1.3024246, 5.866343167), (1.254112164, 5.876364584), (1.203718609, 5.883096176), (1.169419787, 5.88367872), (1.152013221, 5.883974359)],
                knots=[0, 0, 0, 0, 1.011708178, 1.977538892, 2.938094892, 3.871441737, 4.823268678, 5.775953079, 6.743660653, 7.753304209, 8.767430709, 9.76505158, 10.765940967, 11.761741361, 12.775867861, 13.822051386, 14.89469657, 16, 16, 16, 16], degree=3))
        make_face(mode=Mode.SUBTRACT)
    extrude(amount=-CUT_EXTRUDE2_DEPTH, mode=Mode.SUBTRACT)


solid = part.part
